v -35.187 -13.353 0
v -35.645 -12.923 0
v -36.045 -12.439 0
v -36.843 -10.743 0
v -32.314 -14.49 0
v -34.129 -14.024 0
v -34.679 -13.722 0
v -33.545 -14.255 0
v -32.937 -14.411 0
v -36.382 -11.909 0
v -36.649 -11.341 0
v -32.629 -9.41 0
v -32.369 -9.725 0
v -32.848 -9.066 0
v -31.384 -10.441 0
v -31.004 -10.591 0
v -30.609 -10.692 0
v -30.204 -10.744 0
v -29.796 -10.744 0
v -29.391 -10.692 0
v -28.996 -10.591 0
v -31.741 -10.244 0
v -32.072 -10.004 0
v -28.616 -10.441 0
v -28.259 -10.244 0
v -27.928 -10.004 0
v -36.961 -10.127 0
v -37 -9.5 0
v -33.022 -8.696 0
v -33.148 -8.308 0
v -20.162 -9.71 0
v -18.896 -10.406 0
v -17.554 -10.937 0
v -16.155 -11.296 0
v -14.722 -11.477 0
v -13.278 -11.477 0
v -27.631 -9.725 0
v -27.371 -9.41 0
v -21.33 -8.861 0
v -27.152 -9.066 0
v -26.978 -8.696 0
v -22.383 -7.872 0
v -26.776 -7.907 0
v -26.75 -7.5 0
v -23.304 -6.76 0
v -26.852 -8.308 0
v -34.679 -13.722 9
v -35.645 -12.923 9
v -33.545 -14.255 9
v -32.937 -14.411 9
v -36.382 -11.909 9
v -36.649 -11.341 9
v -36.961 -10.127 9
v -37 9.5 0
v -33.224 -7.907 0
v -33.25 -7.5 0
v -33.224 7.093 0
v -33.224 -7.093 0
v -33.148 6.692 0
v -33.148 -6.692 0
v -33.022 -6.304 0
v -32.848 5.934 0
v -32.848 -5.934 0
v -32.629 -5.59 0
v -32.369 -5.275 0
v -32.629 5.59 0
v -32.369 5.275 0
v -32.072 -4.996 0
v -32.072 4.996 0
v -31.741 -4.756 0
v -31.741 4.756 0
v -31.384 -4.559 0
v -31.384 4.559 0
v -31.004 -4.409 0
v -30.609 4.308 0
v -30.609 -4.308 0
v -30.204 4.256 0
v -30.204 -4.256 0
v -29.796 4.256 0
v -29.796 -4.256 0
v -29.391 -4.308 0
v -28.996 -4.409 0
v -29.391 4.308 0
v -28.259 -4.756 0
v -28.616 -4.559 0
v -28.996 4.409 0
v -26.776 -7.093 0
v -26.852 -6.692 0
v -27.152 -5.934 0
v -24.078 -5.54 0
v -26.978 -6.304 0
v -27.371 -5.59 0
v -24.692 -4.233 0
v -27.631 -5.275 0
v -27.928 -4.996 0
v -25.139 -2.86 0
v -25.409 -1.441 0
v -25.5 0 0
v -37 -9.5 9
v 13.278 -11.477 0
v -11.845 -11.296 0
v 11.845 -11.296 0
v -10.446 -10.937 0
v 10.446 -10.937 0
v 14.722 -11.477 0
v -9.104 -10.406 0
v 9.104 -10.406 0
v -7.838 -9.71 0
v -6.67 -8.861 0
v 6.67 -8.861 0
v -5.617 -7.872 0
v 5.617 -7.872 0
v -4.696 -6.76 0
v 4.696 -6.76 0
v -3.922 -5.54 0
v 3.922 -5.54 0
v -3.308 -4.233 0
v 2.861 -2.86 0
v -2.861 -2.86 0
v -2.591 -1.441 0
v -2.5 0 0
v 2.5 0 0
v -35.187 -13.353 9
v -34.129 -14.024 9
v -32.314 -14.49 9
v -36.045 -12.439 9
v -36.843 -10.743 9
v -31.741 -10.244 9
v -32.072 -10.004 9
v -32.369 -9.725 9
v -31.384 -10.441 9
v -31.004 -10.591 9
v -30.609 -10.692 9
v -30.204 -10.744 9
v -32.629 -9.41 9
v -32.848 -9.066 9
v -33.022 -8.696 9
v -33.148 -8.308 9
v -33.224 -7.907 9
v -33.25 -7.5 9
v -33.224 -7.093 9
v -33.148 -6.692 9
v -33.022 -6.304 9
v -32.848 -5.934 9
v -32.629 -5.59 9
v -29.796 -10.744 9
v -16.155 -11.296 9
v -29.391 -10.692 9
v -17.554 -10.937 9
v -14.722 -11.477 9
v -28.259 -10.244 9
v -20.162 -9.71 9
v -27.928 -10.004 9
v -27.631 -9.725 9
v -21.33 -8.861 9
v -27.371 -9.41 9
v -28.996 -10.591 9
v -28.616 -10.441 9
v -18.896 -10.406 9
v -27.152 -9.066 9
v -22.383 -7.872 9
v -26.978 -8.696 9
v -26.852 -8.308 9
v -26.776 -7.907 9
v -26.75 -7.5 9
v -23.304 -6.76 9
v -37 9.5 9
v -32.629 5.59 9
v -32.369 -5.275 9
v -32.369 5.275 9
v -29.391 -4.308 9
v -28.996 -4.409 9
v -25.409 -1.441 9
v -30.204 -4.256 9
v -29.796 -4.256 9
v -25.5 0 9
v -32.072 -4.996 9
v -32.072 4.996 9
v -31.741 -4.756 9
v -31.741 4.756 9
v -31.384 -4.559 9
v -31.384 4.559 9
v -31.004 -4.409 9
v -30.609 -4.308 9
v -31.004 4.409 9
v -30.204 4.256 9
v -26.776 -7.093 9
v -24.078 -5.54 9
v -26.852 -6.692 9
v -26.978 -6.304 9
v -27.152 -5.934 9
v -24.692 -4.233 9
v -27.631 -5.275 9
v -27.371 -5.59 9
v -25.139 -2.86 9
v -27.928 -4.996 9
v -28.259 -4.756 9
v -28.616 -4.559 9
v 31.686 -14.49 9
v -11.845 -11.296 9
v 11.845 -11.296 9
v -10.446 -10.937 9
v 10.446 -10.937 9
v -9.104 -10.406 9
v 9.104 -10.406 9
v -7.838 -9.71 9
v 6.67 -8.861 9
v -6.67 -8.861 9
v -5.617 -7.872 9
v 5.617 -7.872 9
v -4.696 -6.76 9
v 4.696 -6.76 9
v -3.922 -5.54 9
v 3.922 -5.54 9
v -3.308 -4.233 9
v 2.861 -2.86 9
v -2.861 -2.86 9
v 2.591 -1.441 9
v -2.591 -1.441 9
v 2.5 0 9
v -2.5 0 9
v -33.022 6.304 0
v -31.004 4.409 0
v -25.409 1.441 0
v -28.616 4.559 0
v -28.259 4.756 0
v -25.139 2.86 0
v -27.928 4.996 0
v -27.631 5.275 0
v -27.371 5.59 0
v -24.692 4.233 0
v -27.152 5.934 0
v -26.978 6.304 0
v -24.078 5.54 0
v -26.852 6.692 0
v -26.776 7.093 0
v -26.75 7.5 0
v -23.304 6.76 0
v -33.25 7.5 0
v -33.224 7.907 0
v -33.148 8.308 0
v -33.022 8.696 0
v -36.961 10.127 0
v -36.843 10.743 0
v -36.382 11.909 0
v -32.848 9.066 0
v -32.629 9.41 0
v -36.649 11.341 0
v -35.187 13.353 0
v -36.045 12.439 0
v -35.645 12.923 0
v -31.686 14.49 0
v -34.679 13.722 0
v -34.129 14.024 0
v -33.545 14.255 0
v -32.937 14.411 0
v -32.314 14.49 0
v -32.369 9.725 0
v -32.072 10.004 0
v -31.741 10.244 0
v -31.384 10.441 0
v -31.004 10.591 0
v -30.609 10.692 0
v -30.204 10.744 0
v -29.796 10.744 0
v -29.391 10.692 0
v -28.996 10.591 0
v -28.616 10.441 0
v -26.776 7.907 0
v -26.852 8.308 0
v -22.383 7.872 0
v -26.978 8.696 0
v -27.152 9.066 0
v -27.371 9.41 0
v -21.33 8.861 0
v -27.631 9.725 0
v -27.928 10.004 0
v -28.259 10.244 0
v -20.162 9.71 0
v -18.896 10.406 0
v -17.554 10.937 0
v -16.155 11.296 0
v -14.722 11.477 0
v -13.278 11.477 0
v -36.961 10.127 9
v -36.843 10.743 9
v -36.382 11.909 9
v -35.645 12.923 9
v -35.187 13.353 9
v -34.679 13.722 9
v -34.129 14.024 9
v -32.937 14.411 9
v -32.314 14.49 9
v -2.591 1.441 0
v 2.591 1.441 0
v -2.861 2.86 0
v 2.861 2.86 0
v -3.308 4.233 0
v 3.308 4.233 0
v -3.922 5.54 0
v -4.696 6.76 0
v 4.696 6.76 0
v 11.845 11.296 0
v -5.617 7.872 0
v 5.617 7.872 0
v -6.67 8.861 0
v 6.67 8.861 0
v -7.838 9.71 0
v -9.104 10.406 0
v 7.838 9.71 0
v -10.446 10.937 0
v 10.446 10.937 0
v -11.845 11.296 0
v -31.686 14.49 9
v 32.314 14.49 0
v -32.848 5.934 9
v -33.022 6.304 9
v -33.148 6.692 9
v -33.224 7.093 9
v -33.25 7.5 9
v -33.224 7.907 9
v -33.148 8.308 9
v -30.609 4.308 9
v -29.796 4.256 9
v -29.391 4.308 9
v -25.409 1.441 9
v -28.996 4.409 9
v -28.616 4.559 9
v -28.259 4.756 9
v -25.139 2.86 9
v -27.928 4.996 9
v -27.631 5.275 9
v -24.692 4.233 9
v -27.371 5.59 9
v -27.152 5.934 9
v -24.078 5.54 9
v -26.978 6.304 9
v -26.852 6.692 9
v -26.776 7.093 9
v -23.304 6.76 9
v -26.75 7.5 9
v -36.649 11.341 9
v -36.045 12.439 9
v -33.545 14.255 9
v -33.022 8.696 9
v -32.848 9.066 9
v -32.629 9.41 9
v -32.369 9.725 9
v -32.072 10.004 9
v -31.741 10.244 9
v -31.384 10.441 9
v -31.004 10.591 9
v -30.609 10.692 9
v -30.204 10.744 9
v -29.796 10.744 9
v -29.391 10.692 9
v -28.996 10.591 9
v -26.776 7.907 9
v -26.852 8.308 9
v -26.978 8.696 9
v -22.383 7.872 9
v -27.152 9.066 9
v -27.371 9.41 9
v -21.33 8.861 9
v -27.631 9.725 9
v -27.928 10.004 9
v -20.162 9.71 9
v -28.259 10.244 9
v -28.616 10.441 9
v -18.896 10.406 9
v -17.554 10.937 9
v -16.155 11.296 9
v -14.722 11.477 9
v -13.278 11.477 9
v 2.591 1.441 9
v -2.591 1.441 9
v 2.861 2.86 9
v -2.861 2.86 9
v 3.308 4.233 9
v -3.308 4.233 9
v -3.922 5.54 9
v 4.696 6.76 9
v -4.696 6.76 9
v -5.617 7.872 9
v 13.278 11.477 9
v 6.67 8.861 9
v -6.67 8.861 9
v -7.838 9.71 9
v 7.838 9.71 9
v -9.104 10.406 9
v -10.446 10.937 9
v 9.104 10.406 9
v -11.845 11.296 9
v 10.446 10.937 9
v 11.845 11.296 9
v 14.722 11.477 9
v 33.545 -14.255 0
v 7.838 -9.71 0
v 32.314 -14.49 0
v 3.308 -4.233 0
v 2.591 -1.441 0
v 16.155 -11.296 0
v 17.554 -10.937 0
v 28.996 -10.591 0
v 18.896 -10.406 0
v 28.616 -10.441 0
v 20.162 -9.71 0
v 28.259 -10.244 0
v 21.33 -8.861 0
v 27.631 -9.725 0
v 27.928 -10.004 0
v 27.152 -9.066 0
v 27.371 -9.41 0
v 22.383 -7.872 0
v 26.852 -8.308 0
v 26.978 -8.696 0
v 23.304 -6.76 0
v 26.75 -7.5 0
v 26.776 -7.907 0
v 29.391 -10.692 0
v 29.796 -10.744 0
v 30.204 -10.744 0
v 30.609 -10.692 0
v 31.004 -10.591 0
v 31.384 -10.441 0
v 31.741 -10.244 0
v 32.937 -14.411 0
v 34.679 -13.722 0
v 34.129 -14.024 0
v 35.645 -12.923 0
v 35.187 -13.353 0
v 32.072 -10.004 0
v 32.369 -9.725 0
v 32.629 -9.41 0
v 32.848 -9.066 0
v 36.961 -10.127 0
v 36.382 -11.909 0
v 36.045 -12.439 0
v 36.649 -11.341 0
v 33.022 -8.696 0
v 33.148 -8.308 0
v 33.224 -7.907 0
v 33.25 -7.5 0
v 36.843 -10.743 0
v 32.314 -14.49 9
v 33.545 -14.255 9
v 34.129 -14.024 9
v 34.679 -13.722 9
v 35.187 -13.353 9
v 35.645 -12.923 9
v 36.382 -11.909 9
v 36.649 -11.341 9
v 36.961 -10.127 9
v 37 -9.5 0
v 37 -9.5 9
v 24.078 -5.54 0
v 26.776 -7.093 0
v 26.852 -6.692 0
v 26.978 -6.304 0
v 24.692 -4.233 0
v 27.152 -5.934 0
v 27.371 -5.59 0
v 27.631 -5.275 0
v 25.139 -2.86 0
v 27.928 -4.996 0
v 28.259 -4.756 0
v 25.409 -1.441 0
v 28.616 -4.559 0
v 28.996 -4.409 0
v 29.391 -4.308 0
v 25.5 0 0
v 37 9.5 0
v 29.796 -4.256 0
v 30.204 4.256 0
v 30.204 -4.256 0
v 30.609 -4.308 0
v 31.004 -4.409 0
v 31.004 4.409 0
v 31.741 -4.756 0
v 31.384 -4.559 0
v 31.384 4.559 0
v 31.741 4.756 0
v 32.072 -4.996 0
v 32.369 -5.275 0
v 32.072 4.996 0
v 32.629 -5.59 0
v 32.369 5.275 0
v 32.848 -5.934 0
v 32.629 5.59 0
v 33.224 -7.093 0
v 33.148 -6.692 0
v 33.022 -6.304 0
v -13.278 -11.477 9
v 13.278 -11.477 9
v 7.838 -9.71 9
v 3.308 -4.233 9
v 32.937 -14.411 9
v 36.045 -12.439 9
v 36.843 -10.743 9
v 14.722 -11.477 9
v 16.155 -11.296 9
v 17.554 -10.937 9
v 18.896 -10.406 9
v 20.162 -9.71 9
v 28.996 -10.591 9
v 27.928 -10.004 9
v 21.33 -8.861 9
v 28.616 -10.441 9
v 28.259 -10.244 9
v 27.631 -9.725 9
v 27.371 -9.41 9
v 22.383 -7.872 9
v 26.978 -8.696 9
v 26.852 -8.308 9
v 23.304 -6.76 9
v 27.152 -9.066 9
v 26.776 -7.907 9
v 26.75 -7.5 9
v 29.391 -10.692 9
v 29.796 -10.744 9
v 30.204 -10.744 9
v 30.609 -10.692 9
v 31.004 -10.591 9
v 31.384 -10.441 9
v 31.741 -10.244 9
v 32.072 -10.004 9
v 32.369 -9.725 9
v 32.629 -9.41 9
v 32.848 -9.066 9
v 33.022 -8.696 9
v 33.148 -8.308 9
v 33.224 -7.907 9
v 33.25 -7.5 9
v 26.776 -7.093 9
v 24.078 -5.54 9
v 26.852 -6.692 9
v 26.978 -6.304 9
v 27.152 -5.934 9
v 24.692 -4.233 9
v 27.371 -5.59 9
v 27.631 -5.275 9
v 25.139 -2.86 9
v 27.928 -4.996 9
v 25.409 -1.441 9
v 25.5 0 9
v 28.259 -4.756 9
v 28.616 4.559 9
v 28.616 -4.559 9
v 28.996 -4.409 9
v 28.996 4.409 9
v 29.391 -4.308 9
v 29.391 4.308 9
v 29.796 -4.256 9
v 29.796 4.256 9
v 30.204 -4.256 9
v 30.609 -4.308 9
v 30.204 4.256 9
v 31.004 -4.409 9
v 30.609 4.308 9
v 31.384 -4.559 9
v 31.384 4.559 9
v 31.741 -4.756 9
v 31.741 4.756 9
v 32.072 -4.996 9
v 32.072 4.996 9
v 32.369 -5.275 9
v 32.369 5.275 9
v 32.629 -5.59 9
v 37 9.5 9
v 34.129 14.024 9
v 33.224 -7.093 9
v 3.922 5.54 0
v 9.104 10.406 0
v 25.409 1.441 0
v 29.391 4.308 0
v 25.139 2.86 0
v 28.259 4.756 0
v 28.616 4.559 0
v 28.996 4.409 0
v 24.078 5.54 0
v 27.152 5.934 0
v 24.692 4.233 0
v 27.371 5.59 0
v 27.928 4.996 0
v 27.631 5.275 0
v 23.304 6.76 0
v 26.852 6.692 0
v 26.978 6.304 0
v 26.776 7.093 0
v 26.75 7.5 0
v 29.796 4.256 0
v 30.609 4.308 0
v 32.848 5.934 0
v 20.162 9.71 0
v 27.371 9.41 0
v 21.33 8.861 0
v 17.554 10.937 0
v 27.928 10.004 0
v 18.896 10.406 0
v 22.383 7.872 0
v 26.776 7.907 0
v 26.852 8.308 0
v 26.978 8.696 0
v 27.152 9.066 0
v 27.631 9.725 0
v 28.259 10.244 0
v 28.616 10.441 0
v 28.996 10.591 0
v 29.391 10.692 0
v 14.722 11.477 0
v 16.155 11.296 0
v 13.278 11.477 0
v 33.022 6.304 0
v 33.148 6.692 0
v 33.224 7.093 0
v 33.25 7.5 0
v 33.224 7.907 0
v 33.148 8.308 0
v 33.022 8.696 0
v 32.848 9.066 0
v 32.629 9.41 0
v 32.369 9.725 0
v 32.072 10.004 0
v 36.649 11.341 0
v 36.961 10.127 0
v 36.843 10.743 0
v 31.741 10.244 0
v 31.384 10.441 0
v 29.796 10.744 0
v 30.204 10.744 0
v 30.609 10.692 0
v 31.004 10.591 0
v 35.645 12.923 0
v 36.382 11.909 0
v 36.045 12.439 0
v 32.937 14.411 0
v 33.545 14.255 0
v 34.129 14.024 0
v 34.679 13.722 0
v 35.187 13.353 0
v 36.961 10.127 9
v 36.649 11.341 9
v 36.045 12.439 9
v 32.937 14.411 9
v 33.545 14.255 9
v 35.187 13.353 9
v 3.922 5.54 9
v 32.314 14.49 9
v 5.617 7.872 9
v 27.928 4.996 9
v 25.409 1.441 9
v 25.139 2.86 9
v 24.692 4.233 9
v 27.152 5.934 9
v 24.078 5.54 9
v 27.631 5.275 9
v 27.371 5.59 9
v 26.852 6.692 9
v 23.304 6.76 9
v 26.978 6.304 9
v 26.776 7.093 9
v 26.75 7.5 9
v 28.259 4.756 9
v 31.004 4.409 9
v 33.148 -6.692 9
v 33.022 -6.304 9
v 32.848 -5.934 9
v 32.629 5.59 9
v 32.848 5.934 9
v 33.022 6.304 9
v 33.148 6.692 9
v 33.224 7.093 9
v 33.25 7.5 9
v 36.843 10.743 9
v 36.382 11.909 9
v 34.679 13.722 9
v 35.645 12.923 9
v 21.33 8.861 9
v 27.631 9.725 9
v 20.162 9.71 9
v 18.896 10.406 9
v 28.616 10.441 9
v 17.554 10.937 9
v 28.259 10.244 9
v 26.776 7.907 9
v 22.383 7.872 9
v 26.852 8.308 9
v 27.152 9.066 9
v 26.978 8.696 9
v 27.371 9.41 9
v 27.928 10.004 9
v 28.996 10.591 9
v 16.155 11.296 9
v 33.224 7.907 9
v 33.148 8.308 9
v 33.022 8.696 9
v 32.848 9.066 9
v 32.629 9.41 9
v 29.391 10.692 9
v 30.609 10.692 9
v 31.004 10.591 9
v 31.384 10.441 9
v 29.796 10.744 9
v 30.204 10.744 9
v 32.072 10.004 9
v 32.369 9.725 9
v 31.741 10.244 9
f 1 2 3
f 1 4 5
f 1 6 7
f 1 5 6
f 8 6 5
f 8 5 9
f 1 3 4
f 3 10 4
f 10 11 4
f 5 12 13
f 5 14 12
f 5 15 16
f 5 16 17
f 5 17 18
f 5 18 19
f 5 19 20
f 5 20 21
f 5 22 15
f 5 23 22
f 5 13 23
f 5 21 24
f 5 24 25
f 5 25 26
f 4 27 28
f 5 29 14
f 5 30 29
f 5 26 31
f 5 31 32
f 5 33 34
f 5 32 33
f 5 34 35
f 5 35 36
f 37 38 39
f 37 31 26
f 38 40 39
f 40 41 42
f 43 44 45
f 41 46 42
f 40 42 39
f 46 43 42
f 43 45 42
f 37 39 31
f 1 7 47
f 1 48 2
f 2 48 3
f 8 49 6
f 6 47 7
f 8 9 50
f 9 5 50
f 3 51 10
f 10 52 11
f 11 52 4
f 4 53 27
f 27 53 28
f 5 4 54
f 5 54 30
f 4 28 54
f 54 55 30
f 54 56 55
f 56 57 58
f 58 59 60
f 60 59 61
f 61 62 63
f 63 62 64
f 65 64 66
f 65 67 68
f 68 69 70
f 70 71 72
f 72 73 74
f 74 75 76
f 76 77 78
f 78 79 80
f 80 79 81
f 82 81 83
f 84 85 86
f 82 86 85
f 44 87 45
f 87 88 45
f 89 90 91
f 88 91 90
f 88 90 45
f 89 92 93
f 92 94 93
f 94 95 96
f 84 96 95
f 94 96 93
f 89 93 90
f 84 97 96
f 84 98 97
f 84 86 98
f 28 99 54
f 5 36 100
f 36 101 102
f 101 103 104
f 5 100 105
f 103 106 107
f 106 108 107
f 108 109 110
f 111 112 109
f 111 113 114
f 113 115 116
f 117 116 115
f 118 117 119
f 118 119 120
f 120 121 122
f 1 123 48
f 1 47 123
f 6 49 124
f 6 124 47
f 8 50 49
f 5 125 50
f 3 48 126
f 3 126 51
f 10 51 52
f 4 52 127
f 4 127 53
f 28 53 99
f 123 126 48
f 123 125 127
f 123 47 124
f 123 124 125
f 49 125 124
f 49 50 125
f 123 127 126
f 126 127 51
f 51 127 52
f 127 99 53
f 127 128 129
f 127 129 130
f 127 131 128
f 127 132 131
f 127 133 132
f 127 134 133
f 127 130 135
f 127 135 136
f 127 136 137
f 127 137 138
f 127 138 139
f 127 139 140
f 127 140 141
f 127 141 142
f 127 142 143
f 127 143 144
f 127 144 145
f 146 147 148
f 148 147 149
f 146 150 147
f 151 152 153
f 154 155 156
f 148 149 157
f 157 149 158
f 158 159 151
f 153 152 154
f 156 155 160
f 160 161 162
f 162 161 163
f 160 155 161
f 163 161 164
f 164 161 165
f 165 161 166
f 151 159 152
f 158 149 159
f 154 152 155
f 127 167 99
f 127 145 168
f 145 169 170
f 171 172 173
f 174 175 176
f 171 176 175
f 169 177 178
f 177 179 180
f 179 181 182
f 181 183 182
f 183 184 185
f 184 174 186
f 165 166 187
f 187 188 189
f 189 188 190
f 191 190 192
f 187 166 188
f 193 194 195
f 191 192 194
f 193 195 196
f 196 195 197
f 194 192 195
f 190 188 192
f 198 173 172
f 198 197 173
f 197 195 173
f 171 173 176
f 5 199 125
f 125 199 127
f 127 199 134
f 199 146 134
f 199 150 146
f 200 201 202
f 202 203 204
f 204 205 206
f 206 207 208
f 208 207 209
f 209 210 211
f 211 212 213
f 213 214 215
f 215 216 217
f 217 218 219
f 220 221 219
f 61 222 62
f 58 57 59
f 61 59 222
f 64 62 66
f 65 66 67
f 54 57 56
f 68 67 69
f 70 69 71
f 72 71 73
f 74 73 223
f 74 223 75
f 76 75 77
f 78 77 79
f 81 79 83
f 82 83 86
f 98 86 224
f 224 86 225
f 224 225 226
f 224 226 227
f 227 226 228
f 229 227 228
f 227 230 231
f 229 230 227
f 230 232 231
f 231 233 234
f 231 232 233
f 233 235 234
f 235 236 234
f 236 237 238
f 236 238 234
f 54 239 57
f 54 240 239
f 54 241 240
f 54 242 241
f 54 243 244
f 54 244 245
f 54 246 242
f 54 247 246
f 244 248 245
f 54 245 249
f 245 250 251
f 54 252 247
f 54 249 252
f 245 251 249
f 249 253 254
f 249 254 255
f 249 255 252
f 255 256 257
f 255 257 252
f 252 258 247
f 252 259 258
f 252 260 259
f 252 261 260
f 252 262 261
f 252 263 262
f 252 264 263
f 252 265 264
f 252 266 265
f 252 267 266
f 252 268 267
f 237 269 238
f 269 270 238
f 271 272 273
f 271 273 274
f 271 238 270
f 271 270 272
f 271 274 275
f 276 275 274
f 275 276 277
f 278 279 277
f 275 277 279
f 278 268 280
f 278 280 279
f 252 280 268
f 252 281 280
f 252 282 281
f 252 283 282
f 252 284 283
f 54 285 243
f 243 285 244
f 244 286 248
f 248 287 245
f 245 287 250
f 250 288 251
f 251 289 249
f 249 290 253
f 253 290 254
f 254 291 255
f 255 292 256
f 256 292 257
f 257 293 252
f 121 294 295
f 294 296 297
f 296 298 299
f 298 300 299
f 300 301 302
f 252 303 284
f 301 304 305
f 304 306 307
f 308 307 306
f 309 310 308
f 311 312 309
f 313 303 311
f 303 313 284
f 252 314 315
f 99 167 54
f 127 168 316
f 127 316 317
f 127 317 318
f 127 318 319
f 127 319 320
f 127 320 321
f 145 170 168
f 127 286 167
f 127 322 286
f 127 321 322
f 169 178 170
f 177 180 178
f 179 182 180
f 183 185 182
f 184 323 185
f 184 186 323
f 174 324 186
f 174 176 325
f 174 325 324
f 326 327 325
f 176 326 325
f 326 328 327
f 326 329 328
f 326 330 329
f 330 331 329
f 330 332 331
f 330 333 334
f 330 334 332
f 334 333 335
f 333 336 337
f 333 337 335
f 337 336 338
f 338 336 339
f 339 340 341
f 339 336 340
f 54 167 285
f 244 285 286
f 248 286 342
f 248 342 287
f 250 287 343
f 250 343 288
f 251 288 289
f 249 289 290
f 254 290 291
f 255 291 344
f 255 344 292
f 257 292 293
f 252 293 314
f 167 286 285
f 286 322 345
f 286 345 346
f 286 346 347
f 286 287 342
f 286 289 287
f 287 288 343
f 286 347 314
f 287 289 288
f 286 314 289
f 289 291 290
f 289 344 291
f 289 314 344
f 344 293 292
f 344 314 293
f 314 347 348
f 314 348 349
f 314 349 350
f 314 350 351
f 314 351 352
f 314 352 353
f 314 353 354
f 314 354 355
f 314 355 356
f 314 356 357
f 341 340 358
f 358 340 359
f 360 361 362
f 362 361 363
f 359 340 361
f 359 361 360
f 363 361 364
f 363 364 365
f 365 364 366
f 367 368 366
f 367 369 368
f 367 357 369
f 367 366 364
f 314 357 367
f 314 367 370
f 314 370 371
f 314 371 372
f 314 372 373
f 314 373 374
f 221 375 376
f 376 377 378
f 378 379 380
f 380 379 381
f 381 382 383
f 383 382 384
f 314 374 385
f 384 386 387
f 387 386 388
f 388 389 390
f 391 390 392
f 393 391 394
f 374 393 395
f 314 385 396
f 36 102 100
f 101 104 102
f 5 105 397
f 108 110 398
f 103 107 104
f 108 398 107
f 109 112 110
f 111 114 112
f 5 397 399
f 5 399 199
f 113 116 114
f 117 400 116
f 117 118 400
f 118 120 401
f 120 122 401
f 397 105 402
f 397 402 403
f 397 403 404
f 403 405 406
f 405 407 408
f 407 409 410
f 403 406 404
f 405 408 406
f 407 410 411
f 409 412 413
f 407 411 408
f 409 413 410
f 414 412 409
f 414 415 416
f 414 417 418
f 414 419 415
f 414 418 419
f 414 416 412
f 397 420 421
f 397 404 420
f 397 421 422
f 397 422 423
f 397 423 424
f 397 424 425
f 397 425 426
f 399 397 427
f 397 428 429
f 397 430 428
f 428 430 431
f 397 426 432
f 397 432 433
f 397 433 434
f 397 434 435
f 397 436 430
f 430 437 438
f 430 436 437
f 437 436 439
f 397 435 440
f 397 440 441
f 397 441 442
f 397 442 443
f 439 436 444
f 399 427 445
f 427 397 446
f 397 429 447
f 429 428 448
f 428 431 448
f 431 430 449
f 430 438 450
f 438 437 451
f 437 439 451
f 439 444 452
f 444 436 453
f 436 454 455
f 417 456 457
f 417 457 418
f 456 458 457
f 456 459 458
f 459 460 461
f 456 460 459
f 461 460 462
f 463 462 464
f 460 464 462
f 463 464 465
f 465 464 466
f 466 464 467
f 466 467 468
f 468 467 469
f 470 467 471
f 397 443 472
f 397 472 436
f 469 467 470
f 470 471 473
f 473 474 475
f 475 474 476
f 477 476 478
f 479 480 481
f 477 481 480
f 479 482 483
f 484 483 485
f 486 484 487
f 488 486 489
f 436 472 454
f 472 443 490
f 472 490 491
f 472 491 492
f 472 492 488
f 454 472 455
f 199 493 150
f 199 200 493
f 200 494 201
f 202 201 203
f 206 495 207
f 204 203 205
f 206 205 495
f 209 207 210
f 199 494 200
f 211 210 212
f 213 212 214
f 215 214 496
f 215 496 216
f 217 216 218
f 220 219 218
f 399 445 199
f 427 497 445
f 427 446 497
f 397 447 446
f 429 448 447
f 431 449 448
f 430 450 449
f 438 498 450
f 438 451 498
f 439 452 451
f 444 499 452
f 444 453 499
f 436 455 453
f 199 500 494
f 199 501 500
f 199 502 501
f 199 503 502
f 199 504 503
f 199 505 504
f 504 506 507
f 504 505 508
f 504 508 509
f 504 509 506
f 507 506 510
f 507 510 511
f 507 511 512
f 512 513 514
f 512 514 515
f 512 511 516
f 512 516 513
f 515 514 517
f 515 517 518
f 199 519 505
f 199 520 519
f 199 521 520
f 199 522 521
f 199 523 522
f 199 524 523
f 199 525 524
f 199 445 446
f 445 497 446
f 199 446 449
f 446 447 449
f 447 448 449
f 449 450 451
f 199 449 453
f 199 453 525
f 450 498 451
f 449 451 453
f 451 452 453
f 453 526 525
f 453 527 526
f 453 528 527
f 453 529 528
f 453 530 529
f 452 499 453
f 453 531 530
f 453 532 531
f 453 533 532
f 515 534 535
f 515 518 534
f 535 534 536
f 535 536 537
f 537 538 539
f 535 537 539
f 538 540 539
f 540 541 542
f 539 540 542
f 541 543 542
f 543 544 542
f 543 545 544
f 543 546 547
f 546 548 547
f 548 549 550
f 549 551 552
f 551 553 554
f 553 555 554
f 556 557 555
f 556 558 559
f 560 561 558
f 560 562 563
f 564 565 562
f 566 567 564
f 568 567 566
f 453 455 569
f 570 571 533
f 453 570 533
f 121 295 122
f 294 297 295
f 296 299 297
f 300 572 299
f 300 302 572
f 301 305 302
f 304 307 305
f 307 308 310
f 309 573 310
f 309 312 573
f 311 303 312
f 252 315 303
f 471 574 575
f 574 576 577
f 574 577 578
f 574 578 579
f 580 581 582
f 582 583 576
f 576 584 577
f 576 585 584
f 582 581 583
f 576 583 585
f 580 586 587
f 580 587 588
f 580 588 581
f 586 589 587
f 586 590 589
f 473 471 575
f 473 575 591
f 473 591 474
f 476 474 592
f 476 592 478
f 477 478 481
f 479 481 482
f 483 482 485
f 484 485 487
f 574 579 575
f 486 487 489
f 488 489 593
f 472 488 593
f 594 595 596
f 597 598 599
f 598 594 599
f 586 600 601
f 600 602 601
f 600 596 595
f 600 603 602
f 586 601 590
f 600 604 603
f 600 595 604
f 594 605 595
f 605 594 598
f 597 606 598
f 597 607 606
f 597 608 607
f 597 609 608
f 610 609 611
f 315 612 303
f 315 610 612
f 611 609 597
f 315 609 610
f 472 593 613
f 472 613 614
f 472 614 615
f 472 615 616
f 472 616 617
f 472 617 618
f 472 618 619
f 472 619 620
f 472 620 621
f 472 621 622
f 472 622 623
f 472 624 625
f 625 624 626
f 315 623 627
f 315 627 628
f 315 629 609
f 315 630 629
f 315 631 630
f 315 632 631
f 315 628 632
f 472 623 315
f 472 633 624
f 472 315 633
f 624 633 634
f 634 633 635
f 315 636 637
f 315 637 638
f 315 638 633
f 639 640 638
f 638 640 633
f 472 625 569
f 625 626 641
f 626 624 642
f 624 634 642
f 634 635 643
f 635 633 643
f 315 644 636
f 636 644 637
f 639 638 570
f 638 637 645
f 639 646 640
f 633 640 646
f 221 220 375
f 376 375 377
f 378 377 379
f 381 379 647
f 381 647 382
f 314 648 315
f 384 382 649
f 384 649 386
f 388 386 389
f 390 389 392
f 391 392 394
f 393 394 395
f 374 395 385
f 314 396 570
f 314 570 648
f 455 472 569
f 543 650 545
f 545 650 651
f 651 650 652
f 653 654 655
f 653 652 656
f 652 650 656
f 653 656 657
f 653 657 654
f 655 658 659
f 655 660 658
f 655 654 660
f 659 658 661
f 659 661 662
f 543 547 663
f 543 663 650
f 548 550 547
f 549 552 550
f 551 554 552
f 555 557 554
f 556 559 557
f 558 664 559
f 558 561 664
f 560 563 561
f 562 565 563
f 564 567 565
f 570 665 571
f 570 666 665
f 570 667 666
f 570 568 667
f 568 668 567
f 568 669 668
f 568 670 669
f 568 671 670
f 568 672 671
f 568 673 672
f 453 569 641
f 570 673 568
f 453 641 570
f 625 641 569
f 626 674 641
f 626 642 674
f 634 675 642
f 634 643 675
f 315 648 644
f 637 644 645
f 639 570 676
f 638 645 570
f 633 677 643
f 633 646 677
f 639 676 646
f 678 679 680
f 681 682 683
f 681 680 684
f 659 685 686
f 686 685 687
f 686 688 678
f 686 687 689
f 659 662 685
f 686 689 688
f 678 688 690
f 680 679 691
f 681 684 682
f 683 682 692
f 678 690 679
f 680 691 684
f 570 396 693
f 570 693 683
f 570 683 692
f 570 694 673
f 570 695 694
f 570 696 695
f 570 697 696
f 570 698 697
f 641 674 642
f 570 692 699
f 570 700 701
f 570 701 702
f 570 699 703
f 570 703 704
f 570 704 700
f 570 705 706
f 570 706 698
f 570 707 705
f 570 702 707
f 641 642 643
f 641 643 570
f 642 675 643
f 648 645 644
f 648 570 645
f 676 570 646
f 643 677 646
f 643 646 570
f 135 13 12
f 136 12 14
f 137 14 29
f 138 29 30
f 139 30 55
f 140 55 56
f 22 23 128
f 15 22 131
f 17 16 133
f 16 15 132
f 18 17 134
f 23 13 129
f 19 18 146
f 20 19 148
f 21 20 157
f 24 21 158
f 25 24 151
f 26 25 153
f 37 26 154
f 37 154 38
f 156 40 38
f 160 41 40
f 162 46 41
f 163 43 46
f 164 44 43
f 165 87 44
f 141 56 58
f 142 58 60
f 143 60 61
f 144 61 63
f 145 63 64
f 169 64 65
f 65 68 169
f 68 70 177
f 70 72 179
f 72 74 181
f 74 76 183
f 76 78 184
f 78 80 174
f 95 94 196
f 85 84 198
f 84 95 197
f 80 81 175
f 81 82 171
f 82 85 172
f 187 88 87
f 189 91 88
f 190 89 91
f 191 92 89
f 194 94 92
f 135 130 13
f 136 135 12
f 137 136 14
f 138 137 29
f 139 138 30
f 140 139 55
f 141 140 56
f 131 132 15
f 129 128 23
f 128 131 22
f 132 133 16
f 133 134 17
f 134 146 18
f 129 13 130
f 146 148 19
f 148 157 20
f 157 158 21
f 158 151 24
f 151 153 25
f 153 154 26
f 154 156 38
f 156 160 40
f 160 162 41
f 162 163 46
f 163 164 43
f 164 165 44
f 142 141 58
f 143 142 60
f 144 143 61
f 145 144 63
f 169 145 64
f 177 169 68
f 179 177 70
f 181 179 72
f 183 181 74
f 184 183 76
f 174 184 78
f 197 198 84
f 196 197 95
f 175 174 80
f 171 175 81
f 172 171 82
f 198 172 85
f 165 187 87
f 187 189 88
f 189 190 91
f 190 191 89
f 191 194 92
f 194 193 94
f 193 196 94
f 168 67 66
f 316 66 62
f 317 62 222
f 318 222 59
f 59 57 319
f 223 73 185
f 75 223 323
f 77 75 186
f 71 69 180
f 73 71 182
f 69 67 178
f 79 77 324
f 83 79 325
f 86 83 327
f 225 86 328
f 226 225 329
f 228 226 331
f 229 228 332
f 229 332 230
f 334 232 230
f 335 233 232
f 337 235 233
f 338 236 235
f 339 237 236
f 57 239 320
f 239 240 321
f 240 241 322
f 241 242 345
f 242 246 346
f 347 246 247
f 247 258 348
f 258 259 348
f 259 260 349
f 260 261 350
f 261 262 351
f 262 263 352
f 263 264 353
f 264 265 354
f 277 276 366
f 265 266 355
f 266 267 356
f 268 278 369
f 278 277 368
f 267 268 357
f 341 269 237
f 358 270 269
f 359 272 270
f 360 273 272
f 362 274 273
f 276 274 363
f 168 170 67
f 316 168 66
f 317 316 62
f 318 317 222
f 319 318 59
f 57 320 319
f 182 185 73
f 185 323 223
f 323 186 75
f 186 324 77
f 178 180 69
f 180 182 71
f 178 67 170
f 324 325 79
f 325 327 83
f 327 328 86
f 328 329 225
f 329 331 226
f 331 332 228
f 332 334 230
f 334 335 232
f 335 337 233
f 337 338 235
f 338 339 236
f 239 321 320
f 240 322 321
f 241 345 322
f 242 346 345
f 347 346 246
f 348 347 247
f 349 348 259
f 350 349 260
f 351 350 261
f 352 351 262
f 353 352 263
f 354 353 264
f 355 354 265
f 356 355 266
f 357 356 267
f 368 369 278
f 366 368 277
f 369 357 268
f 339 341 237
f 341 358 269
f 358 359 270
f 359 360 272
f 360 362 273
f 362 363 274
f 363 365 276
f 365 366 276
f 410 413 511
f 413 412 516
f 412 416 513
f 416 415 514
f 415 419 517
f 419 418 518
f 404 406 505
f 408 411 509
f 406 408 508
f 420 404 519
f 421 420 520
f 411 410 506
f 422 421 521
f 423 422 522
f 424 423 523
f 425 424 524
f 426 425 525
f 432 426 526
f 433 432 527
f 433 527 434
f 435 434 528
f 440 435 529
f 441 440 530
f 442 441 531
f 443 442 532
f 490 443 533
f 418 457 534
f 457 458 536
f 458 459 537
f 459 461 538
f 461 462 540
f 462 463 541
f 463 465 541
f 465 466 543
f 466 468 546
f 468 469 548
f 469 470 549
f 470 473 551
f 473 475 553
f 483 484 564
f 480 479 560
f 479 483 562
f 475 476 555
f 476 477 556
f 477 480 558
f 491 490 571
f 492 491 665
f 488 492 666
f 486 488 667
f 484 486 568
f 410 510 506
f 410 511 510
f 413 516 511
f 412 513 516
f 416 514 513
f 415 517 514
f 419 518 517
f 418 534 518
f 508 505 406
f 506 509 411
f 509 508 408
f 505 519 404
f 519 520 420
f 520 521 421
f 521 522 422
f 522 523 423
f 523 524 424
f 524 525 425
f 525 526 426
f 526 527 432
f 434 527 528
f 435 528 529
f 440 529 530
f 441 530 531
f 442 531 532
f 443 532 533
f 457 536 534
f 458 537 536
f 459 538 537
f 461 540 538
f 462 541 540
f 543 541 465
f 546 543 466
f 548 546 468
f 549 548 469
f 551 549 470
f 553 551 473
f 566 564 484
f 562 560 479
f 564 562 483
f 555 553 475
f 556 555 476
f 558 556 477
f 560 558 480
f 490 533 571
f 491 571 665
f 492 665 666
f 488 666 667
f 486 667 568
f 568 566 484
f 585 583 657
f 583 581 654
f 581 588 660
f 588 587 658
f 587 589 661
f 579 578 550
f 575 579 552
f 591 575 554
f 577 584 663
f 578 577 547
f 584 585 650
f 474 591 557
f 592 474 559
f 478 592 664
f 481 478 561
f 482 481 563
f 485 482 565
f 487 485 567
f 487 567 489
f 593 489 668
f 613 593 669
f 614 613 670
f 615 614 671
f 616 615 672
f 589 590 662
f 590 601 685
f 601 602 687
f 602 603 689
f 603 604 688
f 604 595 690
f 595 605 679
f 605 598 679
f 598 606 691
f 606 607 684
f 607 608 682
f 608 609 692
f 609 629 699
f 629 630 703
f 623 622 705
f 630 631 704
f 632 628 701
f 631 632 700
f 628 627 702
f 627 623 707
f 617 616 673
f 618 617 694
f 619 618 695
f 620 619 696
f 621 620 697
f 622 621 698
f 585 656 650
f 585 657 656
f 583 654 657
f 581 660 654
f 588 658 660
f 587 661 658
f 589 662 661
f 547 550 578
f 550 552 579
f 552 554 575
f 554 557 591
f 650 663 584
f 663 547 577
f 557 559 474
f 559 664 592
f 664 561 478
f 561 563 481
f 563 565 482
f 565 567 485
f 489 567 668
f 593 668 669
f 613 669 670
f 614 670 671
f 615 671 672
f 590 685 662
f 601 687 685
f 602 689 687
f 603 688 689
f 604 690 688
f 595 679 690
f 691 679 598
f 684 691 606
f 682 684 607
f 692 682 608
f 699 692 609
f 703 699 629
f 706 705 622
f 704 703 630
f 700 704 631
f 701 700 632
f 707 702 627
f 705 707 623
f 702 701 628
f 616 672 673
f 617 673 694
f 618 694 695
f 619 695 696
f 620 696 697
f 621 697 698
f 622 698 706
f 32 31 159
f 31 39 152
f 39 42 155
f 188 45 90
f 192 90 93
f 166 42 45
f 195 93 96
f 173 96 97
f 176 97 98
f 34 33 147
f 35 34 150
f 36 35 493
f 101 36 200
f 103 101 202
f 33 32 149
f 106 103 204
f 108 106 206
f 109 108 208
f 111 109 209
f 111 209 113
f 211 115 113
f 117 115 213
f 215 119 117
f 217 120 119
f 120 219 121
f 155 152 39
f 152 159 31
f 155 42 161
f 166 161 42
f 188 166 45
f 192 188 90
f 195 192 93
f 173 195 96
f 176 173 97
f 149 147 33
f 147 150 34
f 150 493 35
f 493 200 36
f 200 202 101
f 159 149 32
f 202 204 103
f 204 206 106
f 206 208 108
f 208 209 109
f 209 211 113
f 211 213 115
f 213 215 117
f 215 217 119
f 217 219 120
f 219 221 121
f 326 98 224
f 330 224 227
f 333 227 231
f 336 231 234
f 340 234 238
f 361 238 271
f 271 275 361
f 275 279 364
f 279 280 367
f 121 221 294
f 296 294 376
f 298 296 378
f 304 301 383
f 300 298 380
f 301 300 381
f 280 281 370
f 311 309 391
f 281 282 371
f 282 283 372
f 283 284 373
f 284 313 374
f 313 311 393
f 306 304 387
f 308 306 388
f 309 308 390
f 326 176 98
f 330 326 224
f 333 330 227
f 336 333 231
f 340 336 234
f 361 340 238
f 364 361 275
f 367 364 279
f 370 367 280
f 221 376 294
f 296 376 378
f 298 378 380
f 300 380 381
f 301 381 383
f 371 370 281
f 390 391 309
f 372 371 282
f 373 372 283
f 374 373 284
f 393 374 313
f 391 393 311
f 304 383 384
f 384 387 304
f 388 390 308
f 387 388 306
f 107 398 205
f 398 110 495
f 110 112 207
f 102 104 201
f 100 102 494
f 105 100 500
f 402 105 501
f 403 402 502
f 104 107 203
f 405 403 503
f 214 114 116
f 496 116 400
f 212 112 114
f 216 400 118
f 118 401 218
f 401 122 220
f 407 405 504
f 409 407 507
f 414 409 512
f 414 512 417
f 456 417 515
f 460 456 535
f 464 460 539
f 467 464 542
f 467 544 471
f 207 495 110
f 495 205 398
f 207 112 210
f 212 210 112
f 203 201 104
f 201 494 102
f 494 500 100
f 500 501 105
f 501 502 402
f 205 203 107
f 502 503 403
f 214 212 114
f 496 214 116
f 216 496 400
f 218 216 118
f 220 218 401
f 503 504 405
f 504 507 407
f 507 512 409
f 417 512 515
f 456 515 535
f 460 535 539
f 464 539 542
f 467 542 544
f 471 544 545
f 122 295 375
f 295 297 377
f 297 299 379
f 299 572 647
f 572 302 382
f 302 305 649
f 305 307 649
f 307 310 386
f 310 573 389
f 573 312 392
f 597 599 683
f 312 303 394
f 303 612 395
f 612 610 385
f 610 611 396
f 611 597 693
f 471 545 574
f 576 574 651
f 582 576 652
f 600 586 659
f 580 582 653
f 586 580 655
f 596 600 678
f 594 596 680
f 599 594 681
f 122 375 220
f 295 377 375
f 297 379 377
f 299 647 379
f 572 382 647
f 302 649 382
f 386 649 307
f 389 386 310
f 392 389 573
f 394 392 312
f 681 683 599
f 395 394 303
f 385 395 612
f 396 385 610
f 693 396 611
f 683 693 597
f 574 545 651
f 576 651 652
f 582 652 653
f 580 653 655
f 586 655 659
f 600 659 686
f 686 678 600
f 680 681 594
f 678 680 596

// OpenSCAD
$fn = 50;

difference() {
	union() {
		hull() {
			translate(v = [-32.0, 9.5, 0]) {
				cylinder(h = 9, r = 5);
			}
			translate(v = [32.0, 9.5, 0]) {
				cylinder(h = 9, r = 5);
			}
			translate(v = [-32.0, -9.5, 0]) {
				cylinder(h = 9, r = 5);
			}
			translate(v = [32.0, -9.5, 0]) {
				cylinder(h = 9, r = 5);
			}
		}
	}
	union() {
		translate(v = [-30.0, -7.5, 0]) {
			cylinder(h = 9, r = 3.25);
		}
		translate(v = [-30.0, 7.5, 0]) {
			cylinder(h = 9, r = 3.25);
		}
		translate(v = [30.0, -7.5, 0]) {
			cylinder(h = 9, r = 3.25);
		}
		translate(v = [30.0, 7.5, 0]) {
			cylinder(h = 9, r = 3.25);
		}
		translate(v = [-14.0, 0, 0.0]) {
			cylinder(h = 9, r = 11.5);
		}
		translate(v = [14.0, 0, 0.0]) {
			cylinder(h = 9, r = 11.5);
		}
	}
}
